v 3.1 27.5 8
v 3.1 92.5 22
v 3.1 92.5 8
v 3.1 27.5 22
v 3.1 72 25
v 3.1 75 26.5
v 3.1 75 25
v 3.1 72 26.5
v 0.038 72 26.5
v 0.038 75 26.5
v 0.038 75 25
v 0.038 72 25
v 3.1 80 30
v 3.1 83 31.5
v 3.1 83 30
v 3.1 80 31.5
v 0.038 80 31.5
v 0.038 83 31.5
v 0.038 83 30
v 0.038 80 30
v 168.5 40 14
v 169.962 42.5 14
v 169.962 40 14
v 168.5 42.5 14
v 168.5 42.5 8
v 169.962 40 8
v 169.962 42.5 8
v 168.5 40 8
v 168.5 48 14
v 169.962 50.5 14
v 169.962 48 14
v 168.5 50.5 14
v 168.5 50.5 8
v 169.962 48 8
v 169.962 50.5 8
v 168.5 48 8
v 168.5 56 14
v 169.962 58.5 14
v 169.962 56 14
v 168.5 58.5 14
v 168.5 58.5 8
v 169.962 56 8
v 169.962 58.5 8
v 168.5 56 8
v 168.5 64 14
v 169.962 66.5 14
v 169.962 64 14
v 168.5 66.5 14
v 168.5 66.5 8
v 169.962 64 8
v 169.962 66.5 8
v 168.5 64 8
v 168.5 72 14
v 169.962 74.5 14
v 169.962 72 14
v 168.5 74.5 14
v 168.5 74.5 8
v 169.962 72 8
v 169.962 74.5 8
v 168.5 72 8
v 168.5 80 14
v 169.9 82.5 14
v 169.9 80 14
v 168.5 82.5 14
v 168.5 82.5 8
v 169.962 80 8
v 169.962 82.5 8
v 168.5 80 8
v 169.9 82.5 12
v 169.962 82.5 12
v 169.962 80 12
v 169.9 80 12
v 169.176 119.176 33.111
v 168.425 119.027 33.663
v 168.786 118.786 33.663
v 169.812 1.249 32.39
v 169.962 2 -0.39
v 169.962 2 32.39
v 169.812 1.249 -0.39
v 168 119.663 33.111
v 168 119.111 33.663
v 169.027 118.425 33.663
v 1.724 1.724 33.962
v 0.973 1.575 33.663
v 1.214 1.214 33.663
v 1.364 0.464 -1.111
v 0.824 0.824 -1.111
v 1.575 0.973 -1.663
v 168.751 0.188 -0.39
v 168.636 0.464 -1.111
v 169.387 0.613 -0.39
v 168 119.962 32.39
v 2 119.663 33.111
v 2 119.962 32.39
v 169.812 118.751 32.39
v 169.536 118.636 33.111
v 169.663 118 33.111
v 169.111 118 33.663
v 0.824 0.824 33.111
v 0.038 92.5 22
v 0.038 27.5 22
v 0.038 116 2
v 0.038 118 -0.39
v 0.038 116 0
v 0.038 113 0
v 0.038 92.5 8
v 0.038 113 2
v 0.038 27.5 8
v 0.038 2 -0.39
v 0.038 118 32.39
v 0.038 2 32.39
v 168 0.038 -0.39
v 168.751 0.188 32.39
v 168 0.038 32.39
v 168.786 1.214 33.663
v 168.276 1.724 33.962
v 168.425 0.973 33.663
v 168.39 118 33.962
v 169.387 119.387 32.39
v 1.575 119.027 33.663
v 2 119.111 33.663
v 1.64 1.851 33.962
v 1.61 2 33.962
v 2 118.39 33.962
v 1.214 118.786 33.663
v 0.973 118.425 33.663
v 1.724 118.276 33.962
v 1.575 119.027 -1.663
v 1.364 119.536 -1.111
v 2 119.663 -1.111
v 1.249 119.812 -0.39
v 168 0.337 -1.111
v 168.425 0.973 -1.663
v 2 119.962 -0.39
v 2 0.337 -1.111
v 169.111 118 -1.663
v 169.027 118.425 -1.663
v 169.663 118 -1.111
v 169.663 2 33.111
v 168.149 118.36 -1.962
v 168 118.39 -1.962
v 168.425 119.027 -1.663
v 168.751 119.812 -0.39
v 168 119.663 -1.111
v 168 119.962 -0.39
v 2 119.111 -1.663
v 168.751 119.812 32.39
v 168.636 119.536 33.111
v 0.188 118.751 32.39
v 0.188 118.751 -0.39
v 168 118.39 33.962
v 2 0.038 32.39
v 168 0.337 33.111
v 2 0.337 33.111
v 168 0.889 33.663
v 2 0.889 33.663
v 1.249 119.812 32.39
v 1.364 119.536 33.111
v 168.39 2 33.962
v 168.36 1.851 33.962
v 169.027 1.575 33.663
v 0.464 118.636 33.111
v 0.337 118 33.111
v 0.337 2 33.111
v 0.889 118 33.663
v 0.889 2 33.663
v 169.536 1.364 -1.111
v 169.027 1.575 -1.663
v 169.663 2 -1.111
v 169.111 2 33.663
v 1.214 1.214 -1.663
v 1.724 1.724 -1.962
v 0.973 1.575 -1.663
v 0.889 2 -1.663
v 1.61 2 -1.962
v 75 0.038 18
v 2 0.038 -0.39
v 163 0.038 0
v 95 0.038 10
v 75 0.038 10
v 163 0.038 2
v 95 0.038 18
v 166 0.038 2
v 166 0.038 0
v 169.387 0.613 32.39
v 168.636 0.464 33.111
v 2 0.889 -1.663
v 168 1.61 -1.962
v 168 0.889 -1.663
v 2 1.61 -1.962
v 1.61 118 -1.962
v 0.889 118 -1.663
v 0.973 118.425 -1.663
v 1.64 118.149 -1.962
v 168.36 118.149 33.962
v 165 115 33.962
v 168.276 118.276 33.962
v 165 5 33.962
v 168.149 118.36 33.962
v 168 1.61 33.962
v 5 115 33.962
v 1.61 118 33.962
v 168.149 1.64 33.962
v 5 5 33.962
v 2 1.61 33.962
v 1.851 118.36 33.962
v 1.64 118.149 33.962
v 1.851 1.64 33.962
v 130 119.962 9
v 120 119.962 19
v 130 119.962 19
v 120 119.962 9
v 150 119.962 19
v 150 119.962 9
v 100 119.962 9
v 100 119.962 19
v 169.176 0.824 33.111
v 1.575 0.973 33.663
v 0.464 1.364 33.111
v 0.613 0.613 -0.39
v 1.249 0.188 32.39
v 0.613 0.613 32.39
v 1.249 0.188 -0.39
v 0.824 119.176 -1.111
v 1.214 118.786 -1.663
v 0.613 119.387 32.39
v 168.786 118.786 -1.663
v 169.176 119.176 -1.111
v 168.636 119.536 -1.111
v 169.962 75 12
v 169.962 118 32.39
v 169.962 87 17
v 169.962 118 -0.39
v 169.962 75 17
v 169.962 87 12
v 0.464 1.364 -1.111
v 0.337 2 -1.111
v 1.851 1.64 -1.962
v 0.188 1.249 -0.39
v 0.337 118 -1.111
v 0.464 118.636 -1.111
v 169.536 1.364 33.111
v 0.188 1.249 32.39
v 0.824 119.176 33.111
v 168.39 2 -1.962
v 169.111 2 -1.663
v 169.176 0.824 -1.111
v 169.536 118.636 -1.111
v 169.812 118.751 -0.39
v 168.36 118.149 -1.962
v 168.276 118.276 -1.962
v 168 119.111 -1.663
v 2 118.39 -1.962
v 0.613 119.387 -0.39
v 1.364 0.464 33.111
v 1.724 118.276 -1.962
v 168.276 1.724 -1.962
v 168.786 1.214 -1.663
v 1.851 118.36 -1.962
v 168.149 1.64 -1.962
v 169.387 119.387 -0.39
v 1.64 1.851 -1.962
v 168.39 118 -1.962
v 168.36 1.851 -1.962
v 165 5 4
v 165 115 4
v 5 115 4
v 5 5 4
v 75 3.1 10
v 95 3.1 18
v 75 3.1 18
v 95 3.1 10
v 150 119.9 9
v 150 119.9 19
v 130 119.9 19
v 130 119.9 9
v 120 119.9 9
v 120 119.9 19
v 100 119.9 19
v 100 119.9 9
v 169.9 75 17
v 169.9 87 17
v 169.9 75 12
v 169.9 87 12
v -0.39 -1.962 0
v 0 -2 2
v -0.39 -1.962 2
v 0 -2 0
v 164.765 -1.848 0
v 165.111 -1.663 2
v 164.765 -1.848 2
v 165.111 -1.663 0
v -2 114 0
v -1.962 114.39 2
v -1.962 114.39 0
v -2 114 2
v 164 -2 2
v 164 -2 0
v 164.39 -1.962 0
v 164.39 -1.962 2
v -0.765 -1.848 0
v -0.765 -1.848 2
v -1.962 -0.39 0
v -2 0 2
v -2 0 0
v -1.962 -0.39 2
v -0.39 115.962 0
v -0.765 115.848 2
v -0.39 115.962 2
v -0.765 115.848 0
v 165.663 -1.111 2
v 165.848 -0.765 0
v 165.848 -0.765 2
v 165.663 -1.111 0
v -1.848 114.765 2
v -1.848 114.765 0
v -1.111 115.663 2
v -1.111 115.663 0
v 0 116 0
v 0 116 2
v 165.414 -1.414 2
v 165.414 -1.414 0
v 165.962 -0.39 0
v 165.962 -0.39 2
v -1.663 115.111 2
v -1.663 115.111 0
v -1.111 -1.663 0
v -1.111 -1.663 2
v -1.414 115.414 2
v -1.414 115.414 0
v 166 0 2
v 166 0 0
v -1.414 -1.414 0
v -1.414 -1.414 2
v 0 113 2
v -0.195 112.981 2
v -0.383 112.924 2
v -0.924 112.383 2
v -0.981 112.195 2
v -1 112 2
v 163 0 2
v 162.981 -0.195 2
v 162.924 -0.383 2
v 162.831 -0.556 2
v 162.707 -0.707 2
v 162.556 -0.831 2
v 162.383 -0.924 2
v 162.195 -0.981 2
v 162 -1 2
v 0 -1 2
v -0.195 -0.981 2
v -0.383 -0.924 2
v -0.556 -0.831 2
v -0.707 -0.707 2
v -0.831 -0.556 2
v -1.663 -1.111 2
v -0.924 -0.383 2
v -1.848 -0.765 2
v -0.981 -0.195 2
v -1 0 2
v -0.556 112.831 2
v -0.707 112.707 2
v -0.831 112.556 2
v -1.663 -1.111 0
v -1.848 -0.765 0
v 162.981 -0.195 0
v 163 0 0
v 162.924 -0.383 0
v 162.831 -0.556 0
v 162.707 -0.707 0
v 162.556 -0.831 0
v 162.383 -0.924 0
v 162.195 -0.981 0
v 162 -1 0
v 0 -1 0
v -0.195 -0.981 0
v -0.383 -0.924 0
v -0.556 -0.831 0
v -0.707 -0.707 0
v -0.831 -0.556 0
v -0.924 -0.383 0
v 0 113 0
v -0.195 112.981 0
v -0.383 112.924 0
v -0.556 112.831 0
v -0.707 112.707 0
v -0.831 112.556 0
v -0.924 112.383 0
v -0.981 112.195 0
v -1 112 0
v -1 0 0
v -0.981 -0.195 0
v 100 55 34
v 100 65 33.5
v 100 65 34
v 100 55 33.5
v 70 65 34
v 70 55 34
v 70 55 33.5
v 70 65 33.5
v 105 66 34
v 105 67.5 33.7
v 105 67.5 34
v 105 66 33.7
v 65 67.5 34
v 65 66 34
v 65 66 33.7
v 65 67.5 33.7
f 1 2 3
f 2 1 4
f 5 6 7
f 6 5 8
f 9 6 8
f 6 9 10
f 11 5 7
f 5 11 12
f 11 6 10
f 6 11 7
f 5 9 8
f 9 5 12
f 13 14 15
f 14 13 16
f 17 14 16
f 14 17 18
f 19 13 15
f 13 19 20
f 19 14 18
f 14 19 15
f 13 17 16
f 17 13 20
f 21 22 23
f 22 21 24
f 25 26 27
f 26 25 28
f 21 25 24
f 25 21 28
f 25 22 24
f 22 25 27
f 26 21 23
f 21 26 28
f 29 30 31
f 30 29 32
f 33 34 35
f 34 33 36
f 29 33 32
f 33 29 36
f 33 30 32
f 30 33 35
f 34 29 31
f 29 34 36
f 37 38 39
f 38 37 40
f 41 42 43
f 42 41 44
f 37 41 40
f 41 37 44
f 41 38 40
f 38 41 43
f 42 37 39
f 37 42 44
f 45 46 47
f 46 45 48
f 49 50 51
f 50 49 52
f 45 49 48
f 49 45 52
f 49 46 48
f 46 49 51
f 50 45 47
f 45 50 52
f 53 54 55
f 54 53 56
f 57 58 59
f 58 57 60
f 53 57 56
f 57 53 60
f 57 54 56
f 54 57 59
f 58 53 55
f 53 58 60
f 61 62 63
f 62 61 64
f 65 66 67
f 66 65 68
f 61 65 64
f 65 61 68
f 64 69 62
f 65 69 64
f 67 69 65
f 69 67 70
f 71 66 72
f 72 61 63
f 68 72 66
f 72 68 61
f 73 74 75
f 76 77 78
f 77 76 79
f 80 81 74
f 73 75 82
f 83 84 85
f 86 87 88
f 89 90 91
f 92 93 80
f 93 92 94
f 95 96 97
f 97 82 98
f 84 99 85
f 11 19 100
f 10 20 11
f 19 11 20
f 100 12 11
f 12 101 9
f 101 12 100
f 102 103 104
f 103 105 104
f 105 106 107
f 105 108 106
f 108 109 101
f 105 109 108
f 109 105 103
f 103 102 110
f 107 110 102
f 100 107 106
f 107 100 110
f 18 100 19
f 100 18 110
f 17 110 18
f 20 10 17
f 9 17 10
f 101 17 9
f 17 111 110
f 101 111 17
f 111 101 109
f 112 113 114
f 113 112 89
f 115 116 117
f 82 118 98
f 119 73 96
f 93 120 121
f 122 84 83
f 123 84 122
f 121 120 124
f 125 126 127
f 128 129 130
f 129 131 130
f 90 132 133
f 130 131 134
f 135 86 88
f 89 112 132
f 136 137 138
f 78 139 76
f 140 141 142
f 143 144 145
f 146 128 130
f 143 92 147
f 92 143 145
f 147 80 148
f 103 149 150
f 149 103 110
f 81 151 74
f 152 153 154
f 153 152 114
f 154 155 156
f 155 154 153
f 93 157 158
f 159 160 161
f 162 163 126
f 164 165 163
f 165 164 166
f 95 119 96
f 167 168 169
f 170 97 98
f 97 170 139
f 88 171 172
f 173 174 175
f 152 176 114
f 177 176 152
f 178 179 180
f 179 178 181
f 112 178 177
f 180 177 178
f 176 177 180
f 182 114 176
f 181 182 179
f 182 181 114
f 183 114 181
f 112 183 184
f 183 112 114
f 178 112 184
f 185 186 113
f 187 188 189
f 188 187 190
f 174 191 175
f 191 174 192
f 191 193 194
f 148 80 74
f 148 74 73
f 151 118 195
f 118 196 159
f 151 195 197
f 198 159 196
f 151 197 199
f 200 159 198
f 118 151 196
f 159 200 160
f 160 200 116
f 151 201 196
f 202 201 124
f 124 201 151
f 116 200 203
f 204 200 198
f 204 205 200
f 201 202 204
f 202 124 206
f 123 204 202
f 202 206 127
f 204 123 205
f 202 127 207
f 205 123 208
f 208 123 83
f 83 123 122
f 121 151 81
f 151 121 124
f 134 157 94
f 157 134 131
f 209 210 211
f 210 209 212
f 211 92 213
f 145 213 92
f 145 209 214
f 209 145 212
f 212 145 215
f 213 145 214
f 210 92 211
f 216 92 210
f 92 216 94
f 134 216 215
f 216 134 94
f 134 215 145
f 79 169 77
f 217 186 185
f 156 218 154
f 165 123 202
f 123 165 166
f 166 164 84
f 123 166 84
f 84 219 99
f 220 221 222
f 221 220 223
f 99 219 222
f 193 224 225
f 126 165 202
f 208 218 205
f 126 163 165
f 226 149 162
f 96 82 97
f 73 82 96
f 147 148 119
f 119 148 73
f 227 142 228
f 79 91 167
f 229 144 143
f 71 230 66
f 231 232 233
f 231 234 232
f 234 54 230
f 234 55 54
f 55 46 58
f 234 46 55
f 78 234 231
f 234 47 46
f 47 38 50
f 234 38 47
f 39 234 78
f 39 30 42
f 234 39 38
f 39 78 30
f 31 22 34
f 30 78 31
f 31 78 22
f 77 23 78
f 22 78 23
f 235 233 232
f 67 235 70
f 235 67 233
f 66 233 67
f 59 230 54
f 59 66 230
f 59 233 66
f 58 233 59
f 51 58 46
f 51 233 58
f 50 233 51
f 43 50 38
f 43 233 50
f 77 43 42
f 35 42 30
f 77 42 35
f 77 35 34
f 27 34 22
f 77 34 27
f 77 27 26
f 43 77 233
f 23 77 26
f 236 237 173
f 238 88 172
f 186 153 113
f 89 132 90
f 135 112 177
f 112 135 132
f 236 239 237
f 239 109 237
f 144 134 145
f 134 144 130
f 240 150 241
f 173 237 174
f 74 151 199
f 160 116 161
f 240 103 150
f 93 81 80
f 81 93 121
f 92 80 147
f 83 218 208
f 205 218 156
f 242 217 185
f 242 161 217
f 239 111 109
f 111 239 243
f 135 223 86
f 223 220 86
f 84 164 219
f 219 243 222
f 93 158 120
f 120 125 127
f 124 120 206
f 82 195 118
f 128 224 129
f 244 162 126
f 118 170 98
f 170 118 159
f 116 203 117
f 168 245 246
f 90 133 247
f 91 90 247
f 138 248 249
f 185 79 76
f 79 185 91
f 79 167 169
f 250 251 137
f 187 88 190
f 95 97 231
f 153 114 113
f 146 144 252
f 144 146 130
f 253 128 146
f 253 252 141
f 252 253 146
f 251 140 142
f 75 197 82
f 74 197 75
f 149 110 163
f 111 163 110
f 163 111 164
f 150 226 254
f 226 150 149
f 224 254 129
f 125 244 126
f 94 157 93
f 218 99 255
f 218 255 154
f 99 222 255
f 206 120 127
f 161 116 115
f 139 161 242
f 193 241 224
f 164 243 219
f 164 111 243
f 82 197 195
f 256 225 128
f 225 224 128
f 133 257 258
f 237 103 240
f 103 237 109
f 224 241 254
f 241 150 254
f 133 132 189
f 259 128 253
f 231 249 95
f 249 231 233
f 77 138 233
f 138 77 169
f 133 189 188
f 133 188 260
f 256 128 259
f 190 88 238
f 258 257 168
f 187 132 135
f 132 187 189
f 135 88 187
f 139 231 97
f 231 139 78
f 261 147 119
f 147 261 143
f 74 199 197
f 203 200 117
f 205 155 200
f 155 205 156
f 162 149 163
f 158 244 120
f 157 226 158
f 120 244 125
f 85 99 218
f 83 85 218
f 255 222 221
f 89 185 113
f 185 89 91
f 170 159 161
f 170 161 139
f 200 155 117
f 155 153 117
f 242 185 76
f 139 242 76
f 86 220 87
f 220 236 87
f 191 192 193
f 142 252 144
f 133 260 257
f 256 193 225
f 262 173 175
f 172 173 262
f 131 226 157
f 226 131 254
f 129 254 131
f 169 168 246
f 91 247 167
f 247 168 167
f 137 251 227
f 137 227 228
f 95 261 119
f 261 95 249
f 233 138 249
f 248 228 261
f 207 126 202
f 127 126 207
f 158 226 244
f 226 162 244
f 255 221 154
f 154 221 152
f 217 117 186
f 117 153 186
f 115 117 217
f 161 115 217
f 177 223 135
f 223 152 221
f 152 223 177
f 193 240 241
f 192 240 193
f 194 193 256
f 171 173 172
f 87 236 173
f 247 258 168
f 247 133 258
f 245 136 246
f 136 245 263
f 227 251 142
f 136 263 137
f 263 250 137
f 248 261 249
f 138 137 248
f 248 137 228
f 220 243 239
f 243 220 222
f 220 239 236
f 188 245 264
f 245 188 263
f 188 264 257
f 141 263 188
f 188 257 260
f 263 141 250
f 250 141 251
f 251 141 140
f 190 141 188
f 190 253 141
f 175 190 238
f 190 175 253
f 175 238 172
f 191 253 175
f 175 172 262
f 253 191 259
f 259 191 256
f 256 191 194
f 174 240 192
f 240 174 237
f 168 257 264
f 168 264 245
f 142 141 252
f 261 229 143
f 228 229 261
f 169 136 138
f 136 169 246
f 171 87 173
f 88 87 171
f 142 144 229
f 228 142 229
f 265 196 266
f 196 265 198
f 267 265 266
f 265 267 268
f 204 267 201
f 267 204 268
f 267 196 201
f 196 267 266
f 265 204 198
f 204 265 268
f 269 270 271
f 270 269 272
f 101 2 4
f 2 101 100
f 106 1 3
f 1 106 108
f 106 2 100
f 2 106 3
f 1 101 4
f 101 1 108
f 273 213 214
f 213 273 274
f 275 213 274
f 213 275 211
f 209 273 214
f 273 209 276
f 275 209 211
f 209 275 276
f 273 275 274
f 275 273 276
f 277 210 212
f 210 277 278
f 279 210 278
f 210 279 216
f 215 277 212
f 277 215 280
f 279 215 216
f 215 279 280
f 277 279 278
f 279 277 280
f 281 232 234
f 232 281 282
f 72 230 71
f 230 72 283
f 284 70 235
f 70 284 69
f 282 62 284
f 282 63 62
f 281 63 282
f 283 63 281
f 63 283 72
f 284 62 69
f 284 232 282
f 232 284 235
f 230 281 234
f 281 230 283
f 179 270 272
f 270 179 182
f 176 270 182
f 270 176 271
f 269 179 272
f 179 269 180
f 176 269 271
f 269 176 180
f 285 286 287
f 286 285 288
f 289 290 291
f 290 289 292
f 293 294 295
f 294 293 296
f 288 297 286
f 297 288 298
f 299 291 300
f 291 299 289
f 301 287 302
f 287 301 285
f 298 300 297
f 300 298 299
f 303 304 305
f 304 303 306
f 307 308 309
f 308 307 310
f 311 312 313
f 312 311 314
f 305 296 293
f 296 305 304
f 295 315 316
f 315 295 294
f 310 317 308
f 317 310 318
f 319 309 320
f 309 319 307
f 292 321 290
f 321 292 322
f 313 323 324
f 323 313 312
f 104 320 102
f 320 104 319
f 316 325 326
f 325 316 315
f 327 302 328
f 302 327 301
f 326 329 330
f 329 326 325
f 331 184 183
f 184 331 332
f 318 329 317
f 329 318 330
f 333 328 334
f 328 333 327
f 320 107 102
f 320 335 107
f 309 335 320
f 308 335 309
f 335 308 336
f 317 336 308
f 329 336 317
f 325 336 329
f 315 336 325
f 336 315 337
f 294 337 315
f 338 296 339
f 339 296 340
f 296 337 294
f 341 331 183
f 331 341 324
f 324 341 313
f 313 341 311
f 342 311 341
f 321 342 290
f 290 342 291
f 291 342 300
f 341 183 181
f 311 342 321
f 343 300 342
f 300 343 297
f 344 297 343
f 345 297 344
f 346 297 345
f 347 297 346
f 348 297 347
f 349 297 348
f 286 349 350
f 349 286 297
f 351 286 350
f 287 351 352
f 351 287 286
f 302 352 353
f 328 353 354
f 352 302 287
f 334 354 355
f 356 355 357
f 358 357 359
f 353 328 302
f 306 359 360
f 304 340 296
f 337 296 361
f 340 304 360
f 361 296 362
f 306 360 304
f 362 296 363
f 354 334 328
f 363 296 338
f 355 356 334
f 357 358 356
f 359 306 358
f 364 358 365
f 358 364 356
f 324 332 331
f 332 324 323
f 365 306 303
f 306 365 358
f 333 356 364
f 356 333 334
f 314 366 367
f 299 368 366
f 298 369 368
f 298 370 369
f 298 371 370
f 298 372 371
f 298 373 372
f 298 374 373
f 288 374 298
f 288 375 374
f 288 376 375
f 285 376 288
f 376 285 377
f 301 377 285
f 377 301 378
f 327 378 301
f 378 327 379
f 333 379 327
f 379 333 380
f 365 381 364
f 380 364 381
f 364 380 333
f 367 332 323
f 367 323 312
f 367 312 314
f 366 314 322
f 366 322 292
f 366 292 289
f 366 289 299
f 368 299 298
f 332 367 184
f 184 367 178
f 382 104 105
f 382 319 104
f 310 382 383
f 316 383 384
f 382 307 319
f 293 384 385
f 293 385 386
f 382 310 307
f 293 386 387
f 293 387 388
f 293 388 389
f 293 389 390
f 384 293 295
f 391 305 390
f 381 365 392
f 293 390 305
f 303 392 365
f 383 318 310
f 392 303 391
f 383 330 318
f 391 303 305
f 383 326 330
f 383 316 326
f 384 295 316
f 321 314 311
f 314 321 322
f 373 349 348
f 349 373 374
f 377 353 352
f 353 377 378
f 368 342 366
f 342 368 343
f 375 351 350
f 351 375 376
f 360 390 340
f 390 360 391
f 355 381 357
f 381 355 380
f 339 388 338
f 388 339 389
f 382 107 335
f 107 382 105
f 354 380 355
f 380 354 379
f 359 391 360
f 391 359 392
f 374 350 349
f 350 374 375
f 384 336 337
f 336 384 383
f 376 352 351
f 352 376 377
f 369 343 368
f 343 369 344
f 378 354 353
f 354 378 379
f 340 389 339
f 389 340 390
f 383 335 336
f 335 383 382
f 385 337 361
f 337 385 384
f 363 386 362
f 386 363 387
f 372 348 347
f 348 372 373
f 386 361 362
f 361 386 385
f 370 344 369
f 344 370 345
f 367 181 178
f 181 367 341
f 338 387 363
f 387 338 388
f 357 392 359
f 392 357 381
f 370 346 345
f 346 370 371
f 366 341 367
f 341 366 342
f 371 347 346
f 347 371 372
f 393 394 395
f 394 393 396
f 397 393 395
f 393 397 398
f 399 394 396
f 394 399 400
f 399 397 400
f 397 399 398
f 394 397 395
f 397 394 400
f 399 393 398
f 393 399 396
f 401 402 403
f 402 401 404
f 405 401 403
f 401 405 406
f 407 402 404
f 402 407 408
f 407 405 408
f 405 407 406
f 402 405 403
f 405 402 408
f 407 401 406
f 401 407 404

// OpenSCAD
// ============================================================================
// 7100CPT-S "Sleek Modern" — Dark charcoal + blue accent design
// Matches the ChatGPT tall ECU render style
// ============================================================================
// Envelope: 170mm x 120mm x 34mm

pcb_x = 160;
pcb_y = 110;
wall = 3;
clearance = 2;

encl_x = pcb_x + 2*wall + 2*clearance; // 170
encl_y = pcb_y + 2*wall + 2*clearance; // 120
encl_z = 34;  // total height
base_z = 4;

// Taper / chamfer
chamfer = 2;
taper_angle = 3; // degrees inward

// ---- Accent grooves ----
groove_w = 3;
groove_d = 1.5;
groove_gap = 8;

// LED light pipe position
led_lg = 6;  // light guide length

$fn = 32;

// ====================================================================
// BODY — chamfered box with tapered sidewalls
// ====================================================================
module body() {
  difference() {
    hull() {
      // Bottom (slightly larger)
      translate([chamfer, chamfer, 0])
        minkowski() {
          cube([encl_x - 2*chamfer, encl_y - 2*chamfer, encl_z - chamfer]);
          sphere(r = chamfer, $fn = 16);
        }
    }
    // Interior cavity
    translate([wall + clearance, wall + clearance, base_z])
      cube([pcb_x, pcb_y, encl_z]);

    // ---- Accent grooves (top) ----
    // 3 parallel grooves across the top
    for (i = [0:2]) {
      translate([
        encl_x/4 + i * (encl_x/3),
        encl_y/2 - groove_w*3,
        encl_z - groove_d
      ])
        cube([groove_w, groove_w*6, groove_d + 0.1]);
    }

    // ---- Side accent grooves (left edge) ----
    for (i = [0:4]) {
      translate([
        -0.1,
        encl_y/2 - 3*groove_gap/2 + i * groove_gap,
        base_z + 6 + i * 5
      ])
        cube([wall + 0.2, groove_w, groove_d]);
    }

    // ---- Vents (right side) ----
    for (i = [0:5]) {
      translate([
        encl_x - wall/2,
        encl_y/2 - 5*4 + i * 8,
        base_z + 4
      ])
        cube([wall + 0.2, 2.5, 6]);
    }

    // ---- LED light pipe recess (front) ----
    translate([encl_x/2 - 6, -0.1, base_z + 8])
      cube([12, wall + 0.2, 3]);

    // ---- Connector cutouts ----
    // Main 42-pin (left edge)
    translate([-0.1, (encl_y - 65)/2, base_z + 4])
      cube([wall + 0.2, 65, 14]);

    // CAN0 (top-right)
    translate([encl_x - 40, encl_y - 0.1, base_z + 5])
      cube([20, wall + 0.2, 10]);

    // CAN1 (top-left of right)
    translate([encl_x - 70, encl_y - 0.1, base_z + 5])
      cube([20, wall + 0.2, 10]);

    // USB-C (right edge)
    translate([encl_x - 0.1, encl_y/2 + 15, base_z + 8])
      cube([wall + 0.2, 12, 5]);

    // Debug/SWD (bottom edge)
    translate([encl_x/2 - 10, -0.1, base_z + 6])
      cube([20, wall + 0.2, 8]);
  }
}

// ====================================================================
// DECORATIVE BLUE ACCENT RING (around the top edge)
// ====================================================================
module accent_ring() {
  difference() {
    linear_extrude(height = 2)
      offset(r = 2)
        square([encl_x - 2*wall, encl_y - 2*wall]);
    linear_extrude(height = 2.1)
      offset(r = 1)
        square([encl_x - 2*wall - 2, encl_y - 2*wall - 2]);
  }
}

// ====================================================================
// BRANDING PLATE (raised text area on top)
// ====================================================================
module branding_plate() {
  translate([encl_x/2 - 15, encl_y/2 - 5, encl_z - 0.5])
    cube([30, 10, 0.5]);
  // Accent strip under brand
  color("#5CA5E7")
  translate([encl_x/2 - 20, encl_y/2 + 6, encl_z - 0.3])
    cube([40, 1.5, 0.3]);
}

// ====================================================================
// MOUNTING FEET (4 rubber pads)
// ====================================================================
module feet() {
  color("#222")
  for (x = [12, encl_x - 12])
    for (y = [12, encl_y - 12])
      translate([x - 5, y - 5, 0])
        cube([10, 10, 1.5]);
}

// ====================================================================
// FULL ASSEMBLY
// ====================================================================
module full_assembly() {
  color("#141C25") body();    // Dark charcoal body
  color("#5CA5E7", 0.7) accent_ring(); // Blue accent ring
  color("#0A1118") branding_plate();
  feet();
}

// Preview
full_assembly();

// Isometric view hint for OpenSCAD camera
// openscad --camera 85,60,70,45,20,0,350 --imgsize 1200,900
